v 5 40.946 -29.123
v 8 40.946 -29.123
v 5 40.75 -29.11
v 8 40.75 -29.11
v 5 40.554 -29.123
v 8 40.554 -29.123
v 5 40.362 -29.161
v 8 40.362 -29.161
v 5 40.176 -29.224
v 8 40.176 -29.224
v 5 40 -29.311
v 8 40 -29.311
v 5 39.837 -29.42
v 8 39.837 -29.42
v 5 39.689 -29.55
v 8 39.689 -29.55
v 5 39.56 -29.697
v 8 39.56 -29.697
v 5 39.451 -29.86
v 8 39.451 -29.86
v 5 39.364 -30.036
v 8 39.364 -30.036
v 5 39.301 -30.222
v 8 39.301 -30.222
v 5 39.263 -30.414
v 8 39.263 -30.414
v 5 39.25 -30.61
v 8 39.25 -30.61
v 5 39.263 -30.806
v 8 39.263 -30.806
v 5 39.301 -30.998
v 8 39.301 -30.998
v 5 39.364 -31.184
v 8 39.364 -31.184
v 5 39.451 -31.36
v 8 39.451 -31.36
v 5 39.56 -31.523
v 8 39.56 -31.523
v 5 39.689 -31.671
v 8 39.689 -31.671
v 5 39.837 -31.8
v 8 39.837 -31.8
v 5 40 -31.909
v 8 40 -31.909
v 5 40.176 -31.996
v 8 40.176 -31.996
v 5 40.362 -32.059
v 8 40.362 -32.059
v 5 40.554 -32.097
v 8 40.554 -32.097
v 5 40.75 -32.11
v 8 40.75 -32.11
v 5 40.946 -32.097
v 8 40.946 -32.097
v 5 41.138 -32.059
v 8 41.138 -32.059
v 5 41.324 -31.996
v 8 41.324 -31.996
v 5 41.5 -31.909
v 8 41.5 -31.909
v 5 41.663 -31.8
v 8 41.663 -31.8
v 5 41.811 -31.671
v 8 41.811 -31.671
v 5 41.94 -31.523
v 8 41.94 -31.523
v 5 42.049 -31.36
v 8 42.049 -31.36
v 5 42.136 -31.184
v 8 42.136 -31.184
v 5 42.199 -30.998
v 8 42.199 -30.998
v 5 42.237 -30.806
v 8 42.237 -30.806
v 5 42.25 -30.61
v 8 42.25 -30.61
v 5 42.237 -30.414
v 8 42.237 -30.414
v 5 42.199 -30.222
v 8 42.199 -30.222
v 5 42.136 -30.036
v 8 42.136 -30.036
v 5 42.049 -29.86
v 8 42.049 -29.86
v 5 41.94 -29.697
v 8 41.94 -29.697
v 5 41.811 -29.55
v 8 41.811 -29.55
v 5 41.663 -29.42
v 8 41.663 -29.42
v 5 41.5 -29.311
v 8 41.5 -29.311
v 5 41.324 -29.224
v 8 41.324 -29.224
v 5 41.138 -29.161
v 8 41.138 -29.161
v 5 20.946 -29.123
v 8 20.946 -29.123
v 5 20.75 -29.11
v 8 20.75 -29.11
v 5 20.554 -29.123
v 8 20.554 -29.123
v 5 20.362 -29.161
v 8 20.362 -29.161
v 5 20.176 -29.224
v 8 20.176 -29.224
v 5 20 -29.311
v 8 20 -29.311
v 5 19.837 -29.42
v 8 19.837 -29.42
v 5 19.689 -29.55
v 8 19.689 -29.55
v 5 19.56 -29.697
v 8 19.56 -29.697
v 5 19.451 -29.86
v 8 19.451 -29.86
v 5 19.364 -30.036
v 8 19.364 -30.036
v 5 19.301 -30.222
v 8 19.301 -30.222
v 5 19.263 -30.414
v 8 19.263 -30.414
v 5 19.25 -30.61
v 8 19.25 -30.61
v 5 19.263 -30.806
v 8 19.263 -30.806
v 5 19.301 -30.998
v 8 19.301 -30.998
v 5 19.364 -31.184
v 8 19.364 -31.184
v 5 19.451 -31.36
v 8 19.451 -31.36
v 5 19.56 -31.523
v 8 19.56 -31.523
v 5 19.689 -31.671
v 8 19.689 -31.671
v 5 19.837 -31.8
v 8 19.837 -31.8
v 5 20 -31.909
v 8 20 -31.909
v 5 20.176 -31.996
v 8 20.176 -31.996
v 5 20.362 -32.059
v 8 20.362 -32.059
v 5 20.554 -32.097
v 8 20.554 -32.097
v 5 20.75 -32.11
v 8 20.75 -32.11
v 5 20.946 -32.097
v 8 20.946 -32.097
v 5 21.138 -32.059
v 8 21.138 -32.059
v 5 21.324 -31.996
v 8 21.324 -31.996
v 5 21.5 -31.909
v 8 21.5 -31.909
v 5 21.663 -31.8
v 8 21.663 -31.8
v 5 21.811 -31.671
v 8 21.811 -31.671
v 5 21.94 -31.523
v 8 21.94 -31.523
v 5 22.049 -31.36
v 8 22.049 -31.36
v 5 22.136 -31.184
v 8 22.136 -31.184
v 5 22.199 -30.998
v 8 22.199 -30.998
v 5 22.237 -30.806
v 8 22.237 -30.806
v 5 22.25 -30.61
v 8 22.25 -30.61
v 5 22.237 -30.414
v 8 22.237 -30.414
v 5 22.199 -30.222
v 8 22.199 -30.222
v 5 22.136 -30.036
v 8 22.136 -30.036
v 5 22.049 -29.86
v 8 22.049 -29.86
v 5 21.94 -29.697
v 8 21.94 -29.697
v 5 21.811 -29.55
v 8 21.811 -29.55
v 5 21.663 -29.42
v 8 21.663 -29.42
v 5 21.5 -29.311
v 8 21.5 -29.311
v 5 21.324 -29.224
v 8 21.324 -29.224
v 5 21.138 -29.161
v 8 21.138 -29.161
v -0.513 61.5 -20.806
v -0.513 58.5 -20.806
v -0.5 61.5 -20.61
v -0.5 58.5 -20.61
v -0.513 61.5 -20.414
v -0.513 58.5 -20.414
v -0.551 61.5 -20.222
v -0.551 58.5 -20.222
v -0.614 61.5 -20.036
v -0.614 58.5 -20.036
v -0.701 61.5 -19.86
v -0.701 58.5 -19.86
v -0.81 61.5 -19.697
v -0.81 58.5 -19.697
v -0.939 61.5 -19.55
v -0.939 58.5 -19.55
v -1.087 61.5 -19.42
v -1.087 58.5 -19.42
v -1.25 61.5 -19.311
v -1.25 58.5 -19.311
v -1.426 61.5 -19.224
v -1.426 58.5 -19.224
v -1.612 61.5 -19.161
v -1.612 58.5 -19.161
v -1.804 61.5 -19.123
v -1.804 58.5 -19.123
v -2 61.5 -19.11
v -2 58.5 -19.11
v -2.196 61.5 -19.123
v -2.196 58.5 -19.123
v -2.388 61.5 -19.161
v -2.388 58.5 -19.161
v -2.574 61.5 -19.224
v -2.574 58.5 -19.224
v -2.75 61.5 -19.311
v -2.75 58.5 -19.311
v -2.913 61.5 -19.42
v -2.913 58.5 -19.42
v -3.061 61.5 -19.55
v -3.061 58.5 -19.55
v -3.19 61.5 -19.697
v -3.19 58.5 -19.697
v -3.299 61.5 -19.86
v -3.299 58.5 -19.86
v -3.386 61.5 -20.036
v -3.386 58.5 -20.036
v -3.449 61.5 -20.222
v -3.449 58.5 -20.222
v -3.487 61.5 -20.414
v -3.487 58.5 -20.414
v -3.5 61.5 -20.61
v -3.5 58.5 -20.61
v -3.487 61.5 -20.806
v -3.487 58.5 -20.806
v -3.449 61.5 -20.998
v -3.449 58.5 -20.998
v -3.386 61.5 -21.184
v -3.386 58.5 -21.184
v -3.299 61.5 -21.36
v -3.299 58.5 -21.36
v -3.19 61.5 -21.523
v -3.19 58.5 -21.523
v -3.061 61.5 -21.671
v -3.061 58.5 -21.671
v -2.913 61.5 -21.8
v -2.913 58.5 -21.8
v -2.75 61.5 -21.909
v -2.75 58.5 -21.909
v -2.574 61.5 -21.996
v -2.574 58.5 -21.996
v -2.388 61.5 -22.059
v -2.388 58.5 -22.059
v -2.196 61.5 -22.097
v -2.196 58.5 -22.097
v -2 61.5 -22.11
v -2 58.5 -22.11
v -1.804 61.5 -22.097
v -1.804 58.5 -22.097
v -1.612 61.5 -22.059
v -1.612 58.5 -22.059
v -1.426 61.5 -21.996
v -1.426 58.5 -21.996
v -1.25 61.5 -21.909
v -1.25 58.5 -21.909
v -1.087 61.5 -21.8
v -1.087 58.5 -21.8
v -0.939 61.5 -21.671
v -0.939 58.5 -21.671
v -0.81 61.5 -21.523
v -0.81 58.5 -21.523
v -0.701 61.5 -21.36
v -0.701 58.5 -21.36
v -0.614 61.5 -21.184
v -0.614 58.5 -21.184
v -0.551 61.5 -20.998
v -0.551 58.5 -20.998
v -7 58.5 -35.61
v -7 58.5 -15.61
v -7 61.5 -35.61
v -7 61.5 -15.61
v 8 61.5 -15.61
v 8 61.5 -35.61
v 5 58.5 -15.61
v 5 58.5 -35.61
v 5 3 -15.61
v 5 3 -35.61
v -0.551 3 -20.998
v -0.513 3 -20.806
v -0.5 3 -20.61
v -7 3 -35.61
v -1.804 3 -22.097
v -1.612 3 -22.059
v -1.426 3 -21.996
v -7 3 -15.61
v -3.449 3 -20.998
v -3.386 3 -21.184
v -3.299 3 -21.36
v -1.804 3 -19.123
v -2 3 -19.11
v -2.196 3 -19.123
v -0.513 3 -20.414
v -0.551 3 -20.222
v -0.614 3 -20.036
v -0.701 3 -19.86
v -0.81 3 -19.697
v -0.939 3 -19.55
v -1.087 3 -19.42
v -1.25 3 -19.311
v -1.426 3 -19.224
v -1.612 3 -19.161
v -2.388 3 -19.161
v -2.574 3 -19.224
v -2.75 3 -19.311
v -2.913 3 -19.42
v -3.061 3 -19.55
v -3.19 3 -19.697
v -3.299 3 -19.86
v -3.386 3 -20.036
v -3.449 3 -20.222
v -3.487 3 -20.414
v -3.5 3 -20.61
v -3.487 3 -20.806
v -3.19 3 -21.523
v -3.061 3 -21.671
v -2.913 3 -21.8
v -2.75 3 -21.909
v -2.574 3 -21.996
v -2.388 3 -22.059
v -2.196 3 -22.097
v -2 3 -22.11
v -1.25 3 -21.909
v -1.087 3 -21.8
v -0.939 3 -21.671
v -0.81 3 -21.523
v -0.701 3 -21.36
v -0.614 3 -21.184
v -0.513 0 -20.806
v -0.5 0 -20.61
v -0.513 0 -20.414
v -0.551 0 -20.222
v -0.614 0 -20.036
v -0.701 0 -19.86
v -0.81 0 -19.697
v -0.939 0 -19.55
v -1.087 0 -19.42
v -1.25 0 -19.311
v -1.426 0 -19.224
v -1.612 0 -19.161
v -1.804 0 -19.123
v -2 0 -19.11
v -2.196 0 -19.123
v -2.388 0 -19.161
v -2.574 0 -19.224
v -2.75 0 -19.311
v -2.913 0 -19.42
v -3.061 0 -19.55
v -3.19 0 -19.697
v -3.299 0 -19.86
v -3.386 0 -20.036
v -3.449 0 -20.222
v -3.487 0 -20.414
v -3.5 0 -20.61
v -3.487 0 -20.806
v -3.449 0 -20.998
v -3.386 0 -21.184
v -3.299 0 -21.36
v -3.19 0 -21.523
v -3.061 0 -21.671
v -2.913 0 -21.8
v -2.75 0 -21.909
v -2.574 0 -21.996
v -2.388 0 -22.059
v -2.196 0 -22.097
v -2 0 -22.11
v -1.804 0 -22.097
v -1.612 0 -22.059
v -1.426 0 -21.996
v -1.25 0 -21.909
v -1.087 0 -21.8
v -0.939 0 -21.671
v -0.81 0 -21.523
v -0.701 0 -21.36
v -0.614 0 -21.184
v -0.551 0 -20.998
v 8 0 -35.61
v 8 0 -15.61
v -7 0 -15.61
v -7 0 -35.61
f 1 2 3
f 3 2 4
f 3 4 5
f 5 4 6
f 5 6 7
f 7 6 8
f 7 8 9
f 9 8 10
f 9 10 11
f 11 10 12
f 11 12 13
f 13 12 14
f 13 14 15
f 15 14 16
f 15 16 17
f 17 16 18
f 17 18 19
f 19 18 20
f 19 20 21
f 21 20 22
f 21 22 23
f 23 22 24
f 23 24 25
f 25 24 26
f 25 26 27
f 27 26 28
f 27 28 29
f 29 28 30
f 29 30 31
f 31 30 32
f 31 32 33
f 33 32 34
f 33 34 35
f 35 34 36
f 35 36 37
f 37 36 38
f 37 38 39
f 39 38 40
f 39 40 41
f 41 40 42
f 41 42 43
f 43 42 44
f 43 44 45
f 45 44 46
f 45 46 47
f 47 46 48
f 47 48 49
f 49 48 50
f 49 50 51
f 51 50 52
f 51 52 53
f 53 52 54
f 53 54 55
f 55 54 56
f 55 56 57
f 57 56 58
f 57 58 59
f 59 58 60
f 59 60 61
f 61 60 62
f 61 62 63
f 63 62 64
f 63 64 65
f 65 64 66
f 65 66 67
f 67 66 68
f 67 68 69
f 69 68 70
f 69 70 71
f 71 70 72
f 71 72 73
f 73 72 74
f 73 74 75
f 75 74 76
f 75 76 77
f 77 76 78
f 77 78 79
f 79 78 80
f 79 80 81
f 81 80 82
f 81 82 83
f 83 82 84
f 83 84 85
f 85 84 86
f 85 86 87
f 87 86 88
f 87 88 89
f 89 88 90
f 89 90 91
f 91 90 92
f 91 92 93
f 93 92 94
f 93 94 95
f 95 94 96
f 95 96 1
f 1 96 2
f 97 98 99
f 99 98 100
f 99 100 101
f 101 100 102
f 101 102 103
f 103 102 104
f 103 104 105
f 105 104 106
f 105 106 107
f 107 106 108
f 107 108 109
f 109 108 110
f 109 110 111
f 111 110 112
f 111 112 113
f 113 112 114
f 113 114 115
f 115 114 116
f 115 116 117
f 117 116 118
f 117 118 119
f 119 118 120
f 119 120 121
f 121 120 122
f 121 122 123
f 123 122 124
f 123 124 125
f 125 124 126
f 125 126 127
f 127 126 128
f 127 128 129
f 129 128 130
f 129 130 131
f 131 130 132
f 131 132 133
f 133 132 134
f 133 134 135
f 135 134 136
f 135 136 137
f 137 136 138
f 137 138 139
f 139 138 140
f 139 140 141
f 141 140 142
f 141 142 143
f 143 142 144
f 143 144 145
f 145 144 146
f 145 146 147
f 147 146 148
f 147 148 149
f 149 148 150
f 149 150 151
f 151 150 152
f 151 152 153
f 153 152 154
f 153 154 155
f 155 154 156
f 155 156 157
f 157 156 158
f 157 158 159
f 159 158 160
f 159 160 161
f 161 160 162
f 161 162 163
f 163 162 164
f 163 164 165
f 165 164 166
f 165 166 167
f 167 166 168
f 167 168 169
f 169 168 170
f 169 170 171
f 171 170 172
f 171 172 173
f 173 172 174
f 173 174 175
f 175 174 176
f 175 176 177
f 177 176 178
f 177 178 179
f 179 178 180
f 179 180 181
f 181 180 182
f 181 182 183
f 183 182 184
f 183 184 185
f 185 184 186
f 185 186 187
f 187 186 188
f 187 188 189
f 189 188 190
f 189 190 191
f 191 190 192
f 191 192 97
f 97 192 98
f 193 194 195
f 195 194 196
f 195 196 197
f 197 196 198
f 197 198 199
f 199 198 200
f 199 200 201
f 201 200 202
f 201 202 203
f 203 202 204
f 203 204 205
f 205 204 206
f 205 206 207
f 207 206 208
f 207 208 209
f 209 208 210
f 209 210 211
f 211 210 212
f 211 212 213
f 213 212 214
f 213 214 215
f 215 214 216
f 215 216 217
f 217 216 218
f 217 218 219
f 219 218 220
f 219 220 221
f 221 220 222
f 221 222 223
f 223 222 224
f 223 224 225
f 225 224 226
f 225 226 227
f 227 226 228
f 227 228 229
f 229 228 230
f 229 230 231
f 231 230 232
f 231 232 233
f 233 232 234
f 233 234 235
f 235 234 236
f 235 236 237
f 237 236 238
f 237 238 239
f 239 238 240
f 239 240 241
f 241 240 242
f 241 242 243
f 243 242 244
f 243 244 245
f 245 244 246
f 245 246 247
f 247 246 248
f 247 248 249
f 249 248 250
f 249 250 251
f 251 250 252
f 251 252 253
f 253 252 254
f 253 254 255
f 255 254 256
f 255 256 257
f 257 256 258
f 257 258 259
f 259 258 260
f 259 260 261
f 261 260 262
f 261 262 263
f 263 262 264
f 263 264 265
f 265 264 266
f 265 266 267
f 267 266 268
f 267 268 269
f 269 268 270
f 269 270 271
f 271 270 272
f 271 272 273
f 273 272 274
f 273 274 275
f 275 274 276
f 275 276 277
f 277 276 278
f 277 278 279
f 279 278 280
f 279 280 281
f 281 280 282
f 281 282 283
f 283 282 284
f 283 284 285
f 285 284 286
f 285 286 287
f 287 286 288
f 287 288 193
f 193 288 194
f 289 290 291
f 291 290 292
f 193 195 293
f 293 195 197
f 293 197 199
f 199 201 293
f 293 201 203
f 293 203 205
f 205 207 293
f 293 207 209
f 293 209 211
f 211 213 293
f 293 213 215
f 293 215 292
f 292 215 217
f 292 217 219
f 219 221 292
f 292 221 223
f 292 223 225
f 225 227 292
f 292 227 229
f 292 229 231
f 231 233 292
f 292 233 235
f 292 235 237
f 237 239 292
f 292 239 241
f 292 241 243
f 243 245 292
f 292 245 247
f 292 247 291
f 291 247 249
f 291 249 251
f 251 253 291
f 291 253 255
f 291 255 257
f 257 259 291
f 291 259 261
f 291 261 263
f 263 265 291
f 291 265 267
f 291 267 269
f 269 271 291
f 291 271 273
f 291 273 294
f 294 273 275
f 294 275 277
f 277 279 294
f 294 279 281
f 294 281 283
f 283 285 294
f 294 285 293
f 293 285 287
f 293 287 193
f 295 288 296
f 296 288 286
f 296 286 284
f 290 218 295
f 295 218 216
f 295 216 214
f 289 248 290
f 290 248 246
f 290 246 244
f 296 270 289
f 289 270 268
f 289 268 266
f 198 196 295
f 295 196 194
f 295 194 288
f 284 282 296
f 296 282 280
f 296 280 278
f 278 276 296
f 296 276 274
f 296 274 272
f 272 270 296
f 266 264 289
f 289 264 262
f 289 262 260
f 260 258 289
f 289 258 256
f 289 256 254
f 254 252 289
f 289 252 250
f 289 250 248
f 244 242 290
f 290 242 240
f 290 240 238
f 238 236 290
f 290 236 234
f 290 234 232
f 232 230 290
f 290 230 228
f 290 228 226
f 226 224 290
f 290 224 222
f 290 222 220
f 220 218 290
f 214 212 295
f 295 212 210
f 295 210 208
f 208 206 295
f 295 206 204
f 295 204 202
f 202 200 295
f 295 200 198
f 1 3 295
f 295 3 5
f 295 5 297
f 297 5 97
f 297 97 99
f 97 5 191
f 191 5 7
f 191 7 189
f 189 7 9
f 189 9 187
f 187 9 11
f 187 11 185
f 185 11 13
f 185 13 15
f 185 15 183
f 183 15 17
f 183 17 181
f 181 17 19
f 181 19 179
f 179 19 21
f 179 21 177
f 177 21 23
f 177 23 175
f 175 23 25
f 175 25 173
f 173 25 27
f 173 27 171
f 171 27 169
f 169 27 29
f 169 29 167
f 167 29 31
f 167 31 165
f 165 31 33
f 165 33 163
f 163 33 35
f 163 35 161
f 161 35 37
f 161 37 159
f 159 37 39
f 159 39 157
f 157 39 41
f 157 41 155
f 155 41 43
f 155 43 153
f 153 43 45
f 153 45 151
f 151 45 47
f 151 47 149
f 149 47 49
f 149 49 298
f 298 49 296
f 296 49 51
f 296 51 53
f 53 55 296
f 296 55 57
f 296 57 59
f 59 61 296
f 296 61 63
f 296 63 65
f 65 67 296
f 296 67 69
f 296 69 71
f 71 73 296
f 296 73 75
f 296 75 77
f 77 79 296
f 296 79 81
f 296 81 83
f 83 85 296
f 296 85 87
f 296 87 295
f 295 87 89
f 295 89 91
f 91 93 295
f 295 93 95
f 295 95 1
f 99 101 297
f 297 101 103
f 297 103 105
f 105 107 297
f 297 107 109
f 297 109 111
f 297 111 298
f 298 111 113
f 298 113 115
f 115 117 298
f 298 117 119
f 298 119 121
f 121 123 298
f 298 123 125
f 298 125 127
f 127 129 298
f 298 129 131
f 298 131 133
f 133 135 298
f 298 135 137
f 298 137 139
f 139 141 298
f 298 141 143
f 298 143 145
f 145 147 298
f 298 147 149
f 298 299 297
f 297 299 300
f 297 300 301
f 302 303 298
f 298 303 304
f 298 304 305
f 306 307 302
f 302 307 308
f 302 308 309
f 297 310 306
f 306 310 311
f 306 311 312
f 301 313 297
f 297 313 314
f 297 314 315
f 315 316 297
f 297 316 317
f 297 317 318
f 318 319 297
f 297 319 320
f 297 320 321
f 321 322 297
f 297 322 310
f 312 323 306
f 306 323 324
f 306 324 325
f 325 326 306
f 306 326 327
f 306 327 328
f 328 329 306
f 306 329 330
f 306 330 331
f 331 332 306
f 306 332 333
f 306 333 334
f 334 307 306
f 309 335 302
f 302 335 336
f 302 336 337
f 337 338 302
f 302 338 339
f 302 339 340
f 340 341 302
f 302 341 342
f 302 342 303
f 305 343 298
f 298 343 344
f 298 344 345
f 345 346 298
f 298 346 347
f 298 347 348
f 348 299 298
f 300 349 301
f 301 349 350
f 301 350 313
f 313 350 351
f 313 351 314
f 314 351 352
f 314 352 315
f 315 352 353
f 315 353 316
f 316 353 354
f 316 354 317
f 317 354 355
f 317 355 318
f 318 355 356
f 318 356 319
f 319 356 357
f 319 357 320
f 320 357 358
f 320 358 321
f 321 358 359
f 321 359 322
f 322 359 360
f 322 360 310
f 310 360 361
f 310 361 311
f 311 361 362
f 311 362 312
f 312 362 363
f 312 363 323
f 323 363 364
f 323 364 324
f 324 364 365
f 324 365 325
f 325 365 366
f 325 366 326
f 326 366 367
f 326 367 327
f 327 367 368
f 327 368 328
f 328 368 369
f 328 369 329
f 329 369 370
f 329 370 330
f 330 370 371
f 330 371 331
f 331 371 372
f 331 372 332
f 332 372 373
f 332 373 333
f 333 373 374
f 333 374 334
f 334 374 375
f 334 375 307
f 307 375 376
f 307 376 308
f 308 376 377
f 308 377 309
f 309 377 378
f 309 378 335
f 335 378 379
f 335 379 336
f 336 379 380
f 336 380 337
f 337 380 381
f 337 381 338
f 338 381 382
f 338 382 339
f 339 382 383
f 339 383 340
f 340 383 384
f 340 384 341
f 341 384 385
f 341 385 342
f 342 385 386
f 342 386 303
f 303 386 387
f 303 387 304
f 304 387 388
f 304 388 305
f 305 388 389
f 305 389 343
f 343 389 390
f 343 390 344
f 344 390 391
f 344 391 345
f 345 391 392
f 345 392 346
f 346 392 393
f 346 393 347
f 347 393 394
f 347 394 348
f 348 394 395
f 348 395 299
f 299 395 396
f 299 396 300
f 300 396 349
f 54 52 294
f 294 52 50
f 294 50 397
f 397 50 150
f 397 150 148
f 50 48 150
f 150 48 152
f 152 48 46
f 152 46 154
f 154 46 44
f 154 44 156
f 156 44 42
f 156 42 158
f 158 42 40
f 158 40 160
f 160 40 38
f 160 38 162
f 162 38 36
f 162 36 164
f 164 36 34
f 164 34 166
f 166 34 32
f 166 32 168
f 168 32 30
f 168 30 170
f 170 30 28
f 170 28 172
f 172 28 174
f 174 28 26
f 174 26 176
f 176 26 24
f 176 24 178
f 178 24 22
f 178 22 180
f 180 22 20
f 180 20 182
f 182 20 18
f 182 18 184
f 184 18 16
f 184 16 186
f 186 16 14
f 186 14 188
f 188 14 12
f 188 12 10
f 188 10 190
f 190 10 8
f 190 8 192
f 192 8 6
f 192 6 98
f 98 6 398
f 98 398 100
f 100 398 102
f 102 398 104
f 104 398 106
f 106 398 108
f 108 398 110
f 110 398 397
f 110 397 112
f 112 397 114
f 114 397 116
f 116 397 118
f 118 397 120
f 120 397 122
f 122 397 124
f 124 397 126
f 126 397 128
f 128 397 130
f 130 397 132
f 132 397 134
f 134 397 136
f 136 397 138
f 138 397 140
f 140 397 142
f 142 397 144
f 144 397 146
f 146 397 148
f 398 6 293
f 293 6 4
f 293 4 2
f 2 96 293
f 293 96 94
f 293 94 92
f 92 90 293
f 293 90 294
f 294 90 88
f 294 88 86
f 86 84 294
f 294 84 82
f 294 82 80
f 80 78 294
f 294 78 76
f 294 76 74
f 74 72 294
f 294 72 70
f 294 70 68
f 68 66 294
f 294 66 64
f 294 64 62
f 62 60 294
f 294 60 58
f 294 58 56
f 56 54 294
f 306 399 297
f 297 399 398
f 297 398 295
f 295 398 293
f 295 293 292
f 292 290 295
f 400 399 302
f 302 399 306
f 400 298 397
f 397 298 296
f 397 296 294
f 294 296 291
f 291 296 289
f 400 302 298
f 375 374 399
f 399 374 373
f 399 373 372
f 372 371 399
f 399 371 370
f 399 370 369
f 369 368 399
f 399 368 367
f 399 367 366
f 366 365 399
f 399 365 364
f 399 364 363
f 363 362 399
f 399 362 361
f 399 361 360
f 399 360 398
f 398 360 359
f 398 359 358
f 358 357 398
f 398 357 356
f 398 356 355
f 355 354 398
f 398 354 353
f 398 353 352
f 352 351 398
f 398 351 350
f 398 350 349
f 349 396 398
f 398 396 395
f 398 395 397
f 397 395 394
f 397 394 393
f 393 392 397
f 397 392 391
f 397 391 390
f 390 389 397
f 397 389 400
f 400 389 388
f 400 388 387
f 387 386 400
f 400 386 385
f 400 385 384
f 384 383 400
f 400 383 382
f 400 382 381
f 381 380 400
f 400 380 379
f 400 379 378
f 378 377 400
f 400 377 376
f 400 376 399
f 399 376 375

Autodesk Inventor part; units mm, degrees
ref_plane "YZ Plane" through (0, 0, 0) normal (1, 0, 0) x (0, 1, 0)
ref_plane "XZ Plane" through (0, 0, 0) normal (0, 1, 0) x (-1, 0, 0)
ref_plane "XY Plane" through (0, 0, 0) normal (0, 0, 1) x (1, 0, 0)
sketch "Szkic1" plane through (0, 0, 0) normal (0, 1, 0) x (-1, 0, 0)
  line L0 (7, -35.6103) -> (-8, -35.6103)
  line L1 (-8, -35.6103) -> (-8, -15.6103)
  line L2 (-8, -15.6103) -> (7, -15.6103)
  line L3 (7, -15.6103) -> (7, -35.6103)
  point P0 (0, 0)
  point P1 (2, -20.6103)
  dimension "d21" = 15
  dimension "d22" = 5
  dimension "d23" = 5
  dimension "d24" = 10
extrude "Wyciągnięcie proste3" add sketch "Szkic1" along normal blind 3
hole "Otwór2" at (-2, 0, -20.6103) direction (0, 1, 0) diameter 3 end through all
sketch "Szkic3" plane through (0, 3, 0) normal (0, 1, 0) x (1, 0, 0)
  line L0 (8, 35.6103) -> (8, 15.6103) projected
  line L1 (8, 35.6103) -> (5, 35.6103)
  line L2 (5, 35.6103) -> (5, 15.6103)
  line L3 (5, 15.6103) -> (8, 15.6103)
  line L4 (8, 15.6103) -> (8, 35.6103)
  point P0 (0, 0)
  dimension "d49" = 3
extrude "Wyciągnięcie proste4" add sketch "Szkic3" along normal blind 55.5
sketch "Szkic4" plane through (0, 58.5, 0) normal (0, 1, 0) x (1, 0, 0)
  line L0 (5, 15.6103) -> (5, 35.6103) projected
  line L1 (5, 35.6103) -> (-7, 35.6103) projected
  line L2 (-7, 35.6103) -> (-7, 15.6103) projected
  line L3 (-7, 15.6103) -> (5, 15.6103) projected
  circle A0 centre (-2, 20.6103) radius 1.5 projected
  line L4 (8, 35.6103) -> (5, 35.6103) projected
  line L5 (5, 35.6103) -> (5, 15.6103) projected
  line L6 (5, 15.6103) -> (8, 15.6103) projected
  line L7 (8, 15.6103) -> (8, 35.6103) projected
  point P0 (0, 0)
extrude "Wyciągnięcie proste5" add sketch "Szkic4" along normal blind 3
sketch "Szkic5" plane through (8, 0, -15.6103) normal (1, 0, 0) x (0, 0, -1)
  line L0 (20, 0) -> (0, 0) projected
  line L1 (20, 0) -> (20, 61.5) projected
  line L2 (0, 61.5) -> (20, 61.5) projected
  line L3 (0, 0) -> (0, 61.5) projected
  point P0 (-15.6103, 0)
  point P1 (15, 40.75)
  point P2 (15, 20.75)
  dimension "d38" = 20
  dimension "d39" = 61.5
  dimension "d40" = 20.75
  dimension "d41" = 5
hole "Otwór3" at (8, 40.75, -30.6103) at (8, 20.75, -30.6103) direction (-1, 0, 0) diameter 3 end through all
equation "\"d22\" = d23"
equation "\"d40\" = 0.5 * d39 - 0.5 * d38"
